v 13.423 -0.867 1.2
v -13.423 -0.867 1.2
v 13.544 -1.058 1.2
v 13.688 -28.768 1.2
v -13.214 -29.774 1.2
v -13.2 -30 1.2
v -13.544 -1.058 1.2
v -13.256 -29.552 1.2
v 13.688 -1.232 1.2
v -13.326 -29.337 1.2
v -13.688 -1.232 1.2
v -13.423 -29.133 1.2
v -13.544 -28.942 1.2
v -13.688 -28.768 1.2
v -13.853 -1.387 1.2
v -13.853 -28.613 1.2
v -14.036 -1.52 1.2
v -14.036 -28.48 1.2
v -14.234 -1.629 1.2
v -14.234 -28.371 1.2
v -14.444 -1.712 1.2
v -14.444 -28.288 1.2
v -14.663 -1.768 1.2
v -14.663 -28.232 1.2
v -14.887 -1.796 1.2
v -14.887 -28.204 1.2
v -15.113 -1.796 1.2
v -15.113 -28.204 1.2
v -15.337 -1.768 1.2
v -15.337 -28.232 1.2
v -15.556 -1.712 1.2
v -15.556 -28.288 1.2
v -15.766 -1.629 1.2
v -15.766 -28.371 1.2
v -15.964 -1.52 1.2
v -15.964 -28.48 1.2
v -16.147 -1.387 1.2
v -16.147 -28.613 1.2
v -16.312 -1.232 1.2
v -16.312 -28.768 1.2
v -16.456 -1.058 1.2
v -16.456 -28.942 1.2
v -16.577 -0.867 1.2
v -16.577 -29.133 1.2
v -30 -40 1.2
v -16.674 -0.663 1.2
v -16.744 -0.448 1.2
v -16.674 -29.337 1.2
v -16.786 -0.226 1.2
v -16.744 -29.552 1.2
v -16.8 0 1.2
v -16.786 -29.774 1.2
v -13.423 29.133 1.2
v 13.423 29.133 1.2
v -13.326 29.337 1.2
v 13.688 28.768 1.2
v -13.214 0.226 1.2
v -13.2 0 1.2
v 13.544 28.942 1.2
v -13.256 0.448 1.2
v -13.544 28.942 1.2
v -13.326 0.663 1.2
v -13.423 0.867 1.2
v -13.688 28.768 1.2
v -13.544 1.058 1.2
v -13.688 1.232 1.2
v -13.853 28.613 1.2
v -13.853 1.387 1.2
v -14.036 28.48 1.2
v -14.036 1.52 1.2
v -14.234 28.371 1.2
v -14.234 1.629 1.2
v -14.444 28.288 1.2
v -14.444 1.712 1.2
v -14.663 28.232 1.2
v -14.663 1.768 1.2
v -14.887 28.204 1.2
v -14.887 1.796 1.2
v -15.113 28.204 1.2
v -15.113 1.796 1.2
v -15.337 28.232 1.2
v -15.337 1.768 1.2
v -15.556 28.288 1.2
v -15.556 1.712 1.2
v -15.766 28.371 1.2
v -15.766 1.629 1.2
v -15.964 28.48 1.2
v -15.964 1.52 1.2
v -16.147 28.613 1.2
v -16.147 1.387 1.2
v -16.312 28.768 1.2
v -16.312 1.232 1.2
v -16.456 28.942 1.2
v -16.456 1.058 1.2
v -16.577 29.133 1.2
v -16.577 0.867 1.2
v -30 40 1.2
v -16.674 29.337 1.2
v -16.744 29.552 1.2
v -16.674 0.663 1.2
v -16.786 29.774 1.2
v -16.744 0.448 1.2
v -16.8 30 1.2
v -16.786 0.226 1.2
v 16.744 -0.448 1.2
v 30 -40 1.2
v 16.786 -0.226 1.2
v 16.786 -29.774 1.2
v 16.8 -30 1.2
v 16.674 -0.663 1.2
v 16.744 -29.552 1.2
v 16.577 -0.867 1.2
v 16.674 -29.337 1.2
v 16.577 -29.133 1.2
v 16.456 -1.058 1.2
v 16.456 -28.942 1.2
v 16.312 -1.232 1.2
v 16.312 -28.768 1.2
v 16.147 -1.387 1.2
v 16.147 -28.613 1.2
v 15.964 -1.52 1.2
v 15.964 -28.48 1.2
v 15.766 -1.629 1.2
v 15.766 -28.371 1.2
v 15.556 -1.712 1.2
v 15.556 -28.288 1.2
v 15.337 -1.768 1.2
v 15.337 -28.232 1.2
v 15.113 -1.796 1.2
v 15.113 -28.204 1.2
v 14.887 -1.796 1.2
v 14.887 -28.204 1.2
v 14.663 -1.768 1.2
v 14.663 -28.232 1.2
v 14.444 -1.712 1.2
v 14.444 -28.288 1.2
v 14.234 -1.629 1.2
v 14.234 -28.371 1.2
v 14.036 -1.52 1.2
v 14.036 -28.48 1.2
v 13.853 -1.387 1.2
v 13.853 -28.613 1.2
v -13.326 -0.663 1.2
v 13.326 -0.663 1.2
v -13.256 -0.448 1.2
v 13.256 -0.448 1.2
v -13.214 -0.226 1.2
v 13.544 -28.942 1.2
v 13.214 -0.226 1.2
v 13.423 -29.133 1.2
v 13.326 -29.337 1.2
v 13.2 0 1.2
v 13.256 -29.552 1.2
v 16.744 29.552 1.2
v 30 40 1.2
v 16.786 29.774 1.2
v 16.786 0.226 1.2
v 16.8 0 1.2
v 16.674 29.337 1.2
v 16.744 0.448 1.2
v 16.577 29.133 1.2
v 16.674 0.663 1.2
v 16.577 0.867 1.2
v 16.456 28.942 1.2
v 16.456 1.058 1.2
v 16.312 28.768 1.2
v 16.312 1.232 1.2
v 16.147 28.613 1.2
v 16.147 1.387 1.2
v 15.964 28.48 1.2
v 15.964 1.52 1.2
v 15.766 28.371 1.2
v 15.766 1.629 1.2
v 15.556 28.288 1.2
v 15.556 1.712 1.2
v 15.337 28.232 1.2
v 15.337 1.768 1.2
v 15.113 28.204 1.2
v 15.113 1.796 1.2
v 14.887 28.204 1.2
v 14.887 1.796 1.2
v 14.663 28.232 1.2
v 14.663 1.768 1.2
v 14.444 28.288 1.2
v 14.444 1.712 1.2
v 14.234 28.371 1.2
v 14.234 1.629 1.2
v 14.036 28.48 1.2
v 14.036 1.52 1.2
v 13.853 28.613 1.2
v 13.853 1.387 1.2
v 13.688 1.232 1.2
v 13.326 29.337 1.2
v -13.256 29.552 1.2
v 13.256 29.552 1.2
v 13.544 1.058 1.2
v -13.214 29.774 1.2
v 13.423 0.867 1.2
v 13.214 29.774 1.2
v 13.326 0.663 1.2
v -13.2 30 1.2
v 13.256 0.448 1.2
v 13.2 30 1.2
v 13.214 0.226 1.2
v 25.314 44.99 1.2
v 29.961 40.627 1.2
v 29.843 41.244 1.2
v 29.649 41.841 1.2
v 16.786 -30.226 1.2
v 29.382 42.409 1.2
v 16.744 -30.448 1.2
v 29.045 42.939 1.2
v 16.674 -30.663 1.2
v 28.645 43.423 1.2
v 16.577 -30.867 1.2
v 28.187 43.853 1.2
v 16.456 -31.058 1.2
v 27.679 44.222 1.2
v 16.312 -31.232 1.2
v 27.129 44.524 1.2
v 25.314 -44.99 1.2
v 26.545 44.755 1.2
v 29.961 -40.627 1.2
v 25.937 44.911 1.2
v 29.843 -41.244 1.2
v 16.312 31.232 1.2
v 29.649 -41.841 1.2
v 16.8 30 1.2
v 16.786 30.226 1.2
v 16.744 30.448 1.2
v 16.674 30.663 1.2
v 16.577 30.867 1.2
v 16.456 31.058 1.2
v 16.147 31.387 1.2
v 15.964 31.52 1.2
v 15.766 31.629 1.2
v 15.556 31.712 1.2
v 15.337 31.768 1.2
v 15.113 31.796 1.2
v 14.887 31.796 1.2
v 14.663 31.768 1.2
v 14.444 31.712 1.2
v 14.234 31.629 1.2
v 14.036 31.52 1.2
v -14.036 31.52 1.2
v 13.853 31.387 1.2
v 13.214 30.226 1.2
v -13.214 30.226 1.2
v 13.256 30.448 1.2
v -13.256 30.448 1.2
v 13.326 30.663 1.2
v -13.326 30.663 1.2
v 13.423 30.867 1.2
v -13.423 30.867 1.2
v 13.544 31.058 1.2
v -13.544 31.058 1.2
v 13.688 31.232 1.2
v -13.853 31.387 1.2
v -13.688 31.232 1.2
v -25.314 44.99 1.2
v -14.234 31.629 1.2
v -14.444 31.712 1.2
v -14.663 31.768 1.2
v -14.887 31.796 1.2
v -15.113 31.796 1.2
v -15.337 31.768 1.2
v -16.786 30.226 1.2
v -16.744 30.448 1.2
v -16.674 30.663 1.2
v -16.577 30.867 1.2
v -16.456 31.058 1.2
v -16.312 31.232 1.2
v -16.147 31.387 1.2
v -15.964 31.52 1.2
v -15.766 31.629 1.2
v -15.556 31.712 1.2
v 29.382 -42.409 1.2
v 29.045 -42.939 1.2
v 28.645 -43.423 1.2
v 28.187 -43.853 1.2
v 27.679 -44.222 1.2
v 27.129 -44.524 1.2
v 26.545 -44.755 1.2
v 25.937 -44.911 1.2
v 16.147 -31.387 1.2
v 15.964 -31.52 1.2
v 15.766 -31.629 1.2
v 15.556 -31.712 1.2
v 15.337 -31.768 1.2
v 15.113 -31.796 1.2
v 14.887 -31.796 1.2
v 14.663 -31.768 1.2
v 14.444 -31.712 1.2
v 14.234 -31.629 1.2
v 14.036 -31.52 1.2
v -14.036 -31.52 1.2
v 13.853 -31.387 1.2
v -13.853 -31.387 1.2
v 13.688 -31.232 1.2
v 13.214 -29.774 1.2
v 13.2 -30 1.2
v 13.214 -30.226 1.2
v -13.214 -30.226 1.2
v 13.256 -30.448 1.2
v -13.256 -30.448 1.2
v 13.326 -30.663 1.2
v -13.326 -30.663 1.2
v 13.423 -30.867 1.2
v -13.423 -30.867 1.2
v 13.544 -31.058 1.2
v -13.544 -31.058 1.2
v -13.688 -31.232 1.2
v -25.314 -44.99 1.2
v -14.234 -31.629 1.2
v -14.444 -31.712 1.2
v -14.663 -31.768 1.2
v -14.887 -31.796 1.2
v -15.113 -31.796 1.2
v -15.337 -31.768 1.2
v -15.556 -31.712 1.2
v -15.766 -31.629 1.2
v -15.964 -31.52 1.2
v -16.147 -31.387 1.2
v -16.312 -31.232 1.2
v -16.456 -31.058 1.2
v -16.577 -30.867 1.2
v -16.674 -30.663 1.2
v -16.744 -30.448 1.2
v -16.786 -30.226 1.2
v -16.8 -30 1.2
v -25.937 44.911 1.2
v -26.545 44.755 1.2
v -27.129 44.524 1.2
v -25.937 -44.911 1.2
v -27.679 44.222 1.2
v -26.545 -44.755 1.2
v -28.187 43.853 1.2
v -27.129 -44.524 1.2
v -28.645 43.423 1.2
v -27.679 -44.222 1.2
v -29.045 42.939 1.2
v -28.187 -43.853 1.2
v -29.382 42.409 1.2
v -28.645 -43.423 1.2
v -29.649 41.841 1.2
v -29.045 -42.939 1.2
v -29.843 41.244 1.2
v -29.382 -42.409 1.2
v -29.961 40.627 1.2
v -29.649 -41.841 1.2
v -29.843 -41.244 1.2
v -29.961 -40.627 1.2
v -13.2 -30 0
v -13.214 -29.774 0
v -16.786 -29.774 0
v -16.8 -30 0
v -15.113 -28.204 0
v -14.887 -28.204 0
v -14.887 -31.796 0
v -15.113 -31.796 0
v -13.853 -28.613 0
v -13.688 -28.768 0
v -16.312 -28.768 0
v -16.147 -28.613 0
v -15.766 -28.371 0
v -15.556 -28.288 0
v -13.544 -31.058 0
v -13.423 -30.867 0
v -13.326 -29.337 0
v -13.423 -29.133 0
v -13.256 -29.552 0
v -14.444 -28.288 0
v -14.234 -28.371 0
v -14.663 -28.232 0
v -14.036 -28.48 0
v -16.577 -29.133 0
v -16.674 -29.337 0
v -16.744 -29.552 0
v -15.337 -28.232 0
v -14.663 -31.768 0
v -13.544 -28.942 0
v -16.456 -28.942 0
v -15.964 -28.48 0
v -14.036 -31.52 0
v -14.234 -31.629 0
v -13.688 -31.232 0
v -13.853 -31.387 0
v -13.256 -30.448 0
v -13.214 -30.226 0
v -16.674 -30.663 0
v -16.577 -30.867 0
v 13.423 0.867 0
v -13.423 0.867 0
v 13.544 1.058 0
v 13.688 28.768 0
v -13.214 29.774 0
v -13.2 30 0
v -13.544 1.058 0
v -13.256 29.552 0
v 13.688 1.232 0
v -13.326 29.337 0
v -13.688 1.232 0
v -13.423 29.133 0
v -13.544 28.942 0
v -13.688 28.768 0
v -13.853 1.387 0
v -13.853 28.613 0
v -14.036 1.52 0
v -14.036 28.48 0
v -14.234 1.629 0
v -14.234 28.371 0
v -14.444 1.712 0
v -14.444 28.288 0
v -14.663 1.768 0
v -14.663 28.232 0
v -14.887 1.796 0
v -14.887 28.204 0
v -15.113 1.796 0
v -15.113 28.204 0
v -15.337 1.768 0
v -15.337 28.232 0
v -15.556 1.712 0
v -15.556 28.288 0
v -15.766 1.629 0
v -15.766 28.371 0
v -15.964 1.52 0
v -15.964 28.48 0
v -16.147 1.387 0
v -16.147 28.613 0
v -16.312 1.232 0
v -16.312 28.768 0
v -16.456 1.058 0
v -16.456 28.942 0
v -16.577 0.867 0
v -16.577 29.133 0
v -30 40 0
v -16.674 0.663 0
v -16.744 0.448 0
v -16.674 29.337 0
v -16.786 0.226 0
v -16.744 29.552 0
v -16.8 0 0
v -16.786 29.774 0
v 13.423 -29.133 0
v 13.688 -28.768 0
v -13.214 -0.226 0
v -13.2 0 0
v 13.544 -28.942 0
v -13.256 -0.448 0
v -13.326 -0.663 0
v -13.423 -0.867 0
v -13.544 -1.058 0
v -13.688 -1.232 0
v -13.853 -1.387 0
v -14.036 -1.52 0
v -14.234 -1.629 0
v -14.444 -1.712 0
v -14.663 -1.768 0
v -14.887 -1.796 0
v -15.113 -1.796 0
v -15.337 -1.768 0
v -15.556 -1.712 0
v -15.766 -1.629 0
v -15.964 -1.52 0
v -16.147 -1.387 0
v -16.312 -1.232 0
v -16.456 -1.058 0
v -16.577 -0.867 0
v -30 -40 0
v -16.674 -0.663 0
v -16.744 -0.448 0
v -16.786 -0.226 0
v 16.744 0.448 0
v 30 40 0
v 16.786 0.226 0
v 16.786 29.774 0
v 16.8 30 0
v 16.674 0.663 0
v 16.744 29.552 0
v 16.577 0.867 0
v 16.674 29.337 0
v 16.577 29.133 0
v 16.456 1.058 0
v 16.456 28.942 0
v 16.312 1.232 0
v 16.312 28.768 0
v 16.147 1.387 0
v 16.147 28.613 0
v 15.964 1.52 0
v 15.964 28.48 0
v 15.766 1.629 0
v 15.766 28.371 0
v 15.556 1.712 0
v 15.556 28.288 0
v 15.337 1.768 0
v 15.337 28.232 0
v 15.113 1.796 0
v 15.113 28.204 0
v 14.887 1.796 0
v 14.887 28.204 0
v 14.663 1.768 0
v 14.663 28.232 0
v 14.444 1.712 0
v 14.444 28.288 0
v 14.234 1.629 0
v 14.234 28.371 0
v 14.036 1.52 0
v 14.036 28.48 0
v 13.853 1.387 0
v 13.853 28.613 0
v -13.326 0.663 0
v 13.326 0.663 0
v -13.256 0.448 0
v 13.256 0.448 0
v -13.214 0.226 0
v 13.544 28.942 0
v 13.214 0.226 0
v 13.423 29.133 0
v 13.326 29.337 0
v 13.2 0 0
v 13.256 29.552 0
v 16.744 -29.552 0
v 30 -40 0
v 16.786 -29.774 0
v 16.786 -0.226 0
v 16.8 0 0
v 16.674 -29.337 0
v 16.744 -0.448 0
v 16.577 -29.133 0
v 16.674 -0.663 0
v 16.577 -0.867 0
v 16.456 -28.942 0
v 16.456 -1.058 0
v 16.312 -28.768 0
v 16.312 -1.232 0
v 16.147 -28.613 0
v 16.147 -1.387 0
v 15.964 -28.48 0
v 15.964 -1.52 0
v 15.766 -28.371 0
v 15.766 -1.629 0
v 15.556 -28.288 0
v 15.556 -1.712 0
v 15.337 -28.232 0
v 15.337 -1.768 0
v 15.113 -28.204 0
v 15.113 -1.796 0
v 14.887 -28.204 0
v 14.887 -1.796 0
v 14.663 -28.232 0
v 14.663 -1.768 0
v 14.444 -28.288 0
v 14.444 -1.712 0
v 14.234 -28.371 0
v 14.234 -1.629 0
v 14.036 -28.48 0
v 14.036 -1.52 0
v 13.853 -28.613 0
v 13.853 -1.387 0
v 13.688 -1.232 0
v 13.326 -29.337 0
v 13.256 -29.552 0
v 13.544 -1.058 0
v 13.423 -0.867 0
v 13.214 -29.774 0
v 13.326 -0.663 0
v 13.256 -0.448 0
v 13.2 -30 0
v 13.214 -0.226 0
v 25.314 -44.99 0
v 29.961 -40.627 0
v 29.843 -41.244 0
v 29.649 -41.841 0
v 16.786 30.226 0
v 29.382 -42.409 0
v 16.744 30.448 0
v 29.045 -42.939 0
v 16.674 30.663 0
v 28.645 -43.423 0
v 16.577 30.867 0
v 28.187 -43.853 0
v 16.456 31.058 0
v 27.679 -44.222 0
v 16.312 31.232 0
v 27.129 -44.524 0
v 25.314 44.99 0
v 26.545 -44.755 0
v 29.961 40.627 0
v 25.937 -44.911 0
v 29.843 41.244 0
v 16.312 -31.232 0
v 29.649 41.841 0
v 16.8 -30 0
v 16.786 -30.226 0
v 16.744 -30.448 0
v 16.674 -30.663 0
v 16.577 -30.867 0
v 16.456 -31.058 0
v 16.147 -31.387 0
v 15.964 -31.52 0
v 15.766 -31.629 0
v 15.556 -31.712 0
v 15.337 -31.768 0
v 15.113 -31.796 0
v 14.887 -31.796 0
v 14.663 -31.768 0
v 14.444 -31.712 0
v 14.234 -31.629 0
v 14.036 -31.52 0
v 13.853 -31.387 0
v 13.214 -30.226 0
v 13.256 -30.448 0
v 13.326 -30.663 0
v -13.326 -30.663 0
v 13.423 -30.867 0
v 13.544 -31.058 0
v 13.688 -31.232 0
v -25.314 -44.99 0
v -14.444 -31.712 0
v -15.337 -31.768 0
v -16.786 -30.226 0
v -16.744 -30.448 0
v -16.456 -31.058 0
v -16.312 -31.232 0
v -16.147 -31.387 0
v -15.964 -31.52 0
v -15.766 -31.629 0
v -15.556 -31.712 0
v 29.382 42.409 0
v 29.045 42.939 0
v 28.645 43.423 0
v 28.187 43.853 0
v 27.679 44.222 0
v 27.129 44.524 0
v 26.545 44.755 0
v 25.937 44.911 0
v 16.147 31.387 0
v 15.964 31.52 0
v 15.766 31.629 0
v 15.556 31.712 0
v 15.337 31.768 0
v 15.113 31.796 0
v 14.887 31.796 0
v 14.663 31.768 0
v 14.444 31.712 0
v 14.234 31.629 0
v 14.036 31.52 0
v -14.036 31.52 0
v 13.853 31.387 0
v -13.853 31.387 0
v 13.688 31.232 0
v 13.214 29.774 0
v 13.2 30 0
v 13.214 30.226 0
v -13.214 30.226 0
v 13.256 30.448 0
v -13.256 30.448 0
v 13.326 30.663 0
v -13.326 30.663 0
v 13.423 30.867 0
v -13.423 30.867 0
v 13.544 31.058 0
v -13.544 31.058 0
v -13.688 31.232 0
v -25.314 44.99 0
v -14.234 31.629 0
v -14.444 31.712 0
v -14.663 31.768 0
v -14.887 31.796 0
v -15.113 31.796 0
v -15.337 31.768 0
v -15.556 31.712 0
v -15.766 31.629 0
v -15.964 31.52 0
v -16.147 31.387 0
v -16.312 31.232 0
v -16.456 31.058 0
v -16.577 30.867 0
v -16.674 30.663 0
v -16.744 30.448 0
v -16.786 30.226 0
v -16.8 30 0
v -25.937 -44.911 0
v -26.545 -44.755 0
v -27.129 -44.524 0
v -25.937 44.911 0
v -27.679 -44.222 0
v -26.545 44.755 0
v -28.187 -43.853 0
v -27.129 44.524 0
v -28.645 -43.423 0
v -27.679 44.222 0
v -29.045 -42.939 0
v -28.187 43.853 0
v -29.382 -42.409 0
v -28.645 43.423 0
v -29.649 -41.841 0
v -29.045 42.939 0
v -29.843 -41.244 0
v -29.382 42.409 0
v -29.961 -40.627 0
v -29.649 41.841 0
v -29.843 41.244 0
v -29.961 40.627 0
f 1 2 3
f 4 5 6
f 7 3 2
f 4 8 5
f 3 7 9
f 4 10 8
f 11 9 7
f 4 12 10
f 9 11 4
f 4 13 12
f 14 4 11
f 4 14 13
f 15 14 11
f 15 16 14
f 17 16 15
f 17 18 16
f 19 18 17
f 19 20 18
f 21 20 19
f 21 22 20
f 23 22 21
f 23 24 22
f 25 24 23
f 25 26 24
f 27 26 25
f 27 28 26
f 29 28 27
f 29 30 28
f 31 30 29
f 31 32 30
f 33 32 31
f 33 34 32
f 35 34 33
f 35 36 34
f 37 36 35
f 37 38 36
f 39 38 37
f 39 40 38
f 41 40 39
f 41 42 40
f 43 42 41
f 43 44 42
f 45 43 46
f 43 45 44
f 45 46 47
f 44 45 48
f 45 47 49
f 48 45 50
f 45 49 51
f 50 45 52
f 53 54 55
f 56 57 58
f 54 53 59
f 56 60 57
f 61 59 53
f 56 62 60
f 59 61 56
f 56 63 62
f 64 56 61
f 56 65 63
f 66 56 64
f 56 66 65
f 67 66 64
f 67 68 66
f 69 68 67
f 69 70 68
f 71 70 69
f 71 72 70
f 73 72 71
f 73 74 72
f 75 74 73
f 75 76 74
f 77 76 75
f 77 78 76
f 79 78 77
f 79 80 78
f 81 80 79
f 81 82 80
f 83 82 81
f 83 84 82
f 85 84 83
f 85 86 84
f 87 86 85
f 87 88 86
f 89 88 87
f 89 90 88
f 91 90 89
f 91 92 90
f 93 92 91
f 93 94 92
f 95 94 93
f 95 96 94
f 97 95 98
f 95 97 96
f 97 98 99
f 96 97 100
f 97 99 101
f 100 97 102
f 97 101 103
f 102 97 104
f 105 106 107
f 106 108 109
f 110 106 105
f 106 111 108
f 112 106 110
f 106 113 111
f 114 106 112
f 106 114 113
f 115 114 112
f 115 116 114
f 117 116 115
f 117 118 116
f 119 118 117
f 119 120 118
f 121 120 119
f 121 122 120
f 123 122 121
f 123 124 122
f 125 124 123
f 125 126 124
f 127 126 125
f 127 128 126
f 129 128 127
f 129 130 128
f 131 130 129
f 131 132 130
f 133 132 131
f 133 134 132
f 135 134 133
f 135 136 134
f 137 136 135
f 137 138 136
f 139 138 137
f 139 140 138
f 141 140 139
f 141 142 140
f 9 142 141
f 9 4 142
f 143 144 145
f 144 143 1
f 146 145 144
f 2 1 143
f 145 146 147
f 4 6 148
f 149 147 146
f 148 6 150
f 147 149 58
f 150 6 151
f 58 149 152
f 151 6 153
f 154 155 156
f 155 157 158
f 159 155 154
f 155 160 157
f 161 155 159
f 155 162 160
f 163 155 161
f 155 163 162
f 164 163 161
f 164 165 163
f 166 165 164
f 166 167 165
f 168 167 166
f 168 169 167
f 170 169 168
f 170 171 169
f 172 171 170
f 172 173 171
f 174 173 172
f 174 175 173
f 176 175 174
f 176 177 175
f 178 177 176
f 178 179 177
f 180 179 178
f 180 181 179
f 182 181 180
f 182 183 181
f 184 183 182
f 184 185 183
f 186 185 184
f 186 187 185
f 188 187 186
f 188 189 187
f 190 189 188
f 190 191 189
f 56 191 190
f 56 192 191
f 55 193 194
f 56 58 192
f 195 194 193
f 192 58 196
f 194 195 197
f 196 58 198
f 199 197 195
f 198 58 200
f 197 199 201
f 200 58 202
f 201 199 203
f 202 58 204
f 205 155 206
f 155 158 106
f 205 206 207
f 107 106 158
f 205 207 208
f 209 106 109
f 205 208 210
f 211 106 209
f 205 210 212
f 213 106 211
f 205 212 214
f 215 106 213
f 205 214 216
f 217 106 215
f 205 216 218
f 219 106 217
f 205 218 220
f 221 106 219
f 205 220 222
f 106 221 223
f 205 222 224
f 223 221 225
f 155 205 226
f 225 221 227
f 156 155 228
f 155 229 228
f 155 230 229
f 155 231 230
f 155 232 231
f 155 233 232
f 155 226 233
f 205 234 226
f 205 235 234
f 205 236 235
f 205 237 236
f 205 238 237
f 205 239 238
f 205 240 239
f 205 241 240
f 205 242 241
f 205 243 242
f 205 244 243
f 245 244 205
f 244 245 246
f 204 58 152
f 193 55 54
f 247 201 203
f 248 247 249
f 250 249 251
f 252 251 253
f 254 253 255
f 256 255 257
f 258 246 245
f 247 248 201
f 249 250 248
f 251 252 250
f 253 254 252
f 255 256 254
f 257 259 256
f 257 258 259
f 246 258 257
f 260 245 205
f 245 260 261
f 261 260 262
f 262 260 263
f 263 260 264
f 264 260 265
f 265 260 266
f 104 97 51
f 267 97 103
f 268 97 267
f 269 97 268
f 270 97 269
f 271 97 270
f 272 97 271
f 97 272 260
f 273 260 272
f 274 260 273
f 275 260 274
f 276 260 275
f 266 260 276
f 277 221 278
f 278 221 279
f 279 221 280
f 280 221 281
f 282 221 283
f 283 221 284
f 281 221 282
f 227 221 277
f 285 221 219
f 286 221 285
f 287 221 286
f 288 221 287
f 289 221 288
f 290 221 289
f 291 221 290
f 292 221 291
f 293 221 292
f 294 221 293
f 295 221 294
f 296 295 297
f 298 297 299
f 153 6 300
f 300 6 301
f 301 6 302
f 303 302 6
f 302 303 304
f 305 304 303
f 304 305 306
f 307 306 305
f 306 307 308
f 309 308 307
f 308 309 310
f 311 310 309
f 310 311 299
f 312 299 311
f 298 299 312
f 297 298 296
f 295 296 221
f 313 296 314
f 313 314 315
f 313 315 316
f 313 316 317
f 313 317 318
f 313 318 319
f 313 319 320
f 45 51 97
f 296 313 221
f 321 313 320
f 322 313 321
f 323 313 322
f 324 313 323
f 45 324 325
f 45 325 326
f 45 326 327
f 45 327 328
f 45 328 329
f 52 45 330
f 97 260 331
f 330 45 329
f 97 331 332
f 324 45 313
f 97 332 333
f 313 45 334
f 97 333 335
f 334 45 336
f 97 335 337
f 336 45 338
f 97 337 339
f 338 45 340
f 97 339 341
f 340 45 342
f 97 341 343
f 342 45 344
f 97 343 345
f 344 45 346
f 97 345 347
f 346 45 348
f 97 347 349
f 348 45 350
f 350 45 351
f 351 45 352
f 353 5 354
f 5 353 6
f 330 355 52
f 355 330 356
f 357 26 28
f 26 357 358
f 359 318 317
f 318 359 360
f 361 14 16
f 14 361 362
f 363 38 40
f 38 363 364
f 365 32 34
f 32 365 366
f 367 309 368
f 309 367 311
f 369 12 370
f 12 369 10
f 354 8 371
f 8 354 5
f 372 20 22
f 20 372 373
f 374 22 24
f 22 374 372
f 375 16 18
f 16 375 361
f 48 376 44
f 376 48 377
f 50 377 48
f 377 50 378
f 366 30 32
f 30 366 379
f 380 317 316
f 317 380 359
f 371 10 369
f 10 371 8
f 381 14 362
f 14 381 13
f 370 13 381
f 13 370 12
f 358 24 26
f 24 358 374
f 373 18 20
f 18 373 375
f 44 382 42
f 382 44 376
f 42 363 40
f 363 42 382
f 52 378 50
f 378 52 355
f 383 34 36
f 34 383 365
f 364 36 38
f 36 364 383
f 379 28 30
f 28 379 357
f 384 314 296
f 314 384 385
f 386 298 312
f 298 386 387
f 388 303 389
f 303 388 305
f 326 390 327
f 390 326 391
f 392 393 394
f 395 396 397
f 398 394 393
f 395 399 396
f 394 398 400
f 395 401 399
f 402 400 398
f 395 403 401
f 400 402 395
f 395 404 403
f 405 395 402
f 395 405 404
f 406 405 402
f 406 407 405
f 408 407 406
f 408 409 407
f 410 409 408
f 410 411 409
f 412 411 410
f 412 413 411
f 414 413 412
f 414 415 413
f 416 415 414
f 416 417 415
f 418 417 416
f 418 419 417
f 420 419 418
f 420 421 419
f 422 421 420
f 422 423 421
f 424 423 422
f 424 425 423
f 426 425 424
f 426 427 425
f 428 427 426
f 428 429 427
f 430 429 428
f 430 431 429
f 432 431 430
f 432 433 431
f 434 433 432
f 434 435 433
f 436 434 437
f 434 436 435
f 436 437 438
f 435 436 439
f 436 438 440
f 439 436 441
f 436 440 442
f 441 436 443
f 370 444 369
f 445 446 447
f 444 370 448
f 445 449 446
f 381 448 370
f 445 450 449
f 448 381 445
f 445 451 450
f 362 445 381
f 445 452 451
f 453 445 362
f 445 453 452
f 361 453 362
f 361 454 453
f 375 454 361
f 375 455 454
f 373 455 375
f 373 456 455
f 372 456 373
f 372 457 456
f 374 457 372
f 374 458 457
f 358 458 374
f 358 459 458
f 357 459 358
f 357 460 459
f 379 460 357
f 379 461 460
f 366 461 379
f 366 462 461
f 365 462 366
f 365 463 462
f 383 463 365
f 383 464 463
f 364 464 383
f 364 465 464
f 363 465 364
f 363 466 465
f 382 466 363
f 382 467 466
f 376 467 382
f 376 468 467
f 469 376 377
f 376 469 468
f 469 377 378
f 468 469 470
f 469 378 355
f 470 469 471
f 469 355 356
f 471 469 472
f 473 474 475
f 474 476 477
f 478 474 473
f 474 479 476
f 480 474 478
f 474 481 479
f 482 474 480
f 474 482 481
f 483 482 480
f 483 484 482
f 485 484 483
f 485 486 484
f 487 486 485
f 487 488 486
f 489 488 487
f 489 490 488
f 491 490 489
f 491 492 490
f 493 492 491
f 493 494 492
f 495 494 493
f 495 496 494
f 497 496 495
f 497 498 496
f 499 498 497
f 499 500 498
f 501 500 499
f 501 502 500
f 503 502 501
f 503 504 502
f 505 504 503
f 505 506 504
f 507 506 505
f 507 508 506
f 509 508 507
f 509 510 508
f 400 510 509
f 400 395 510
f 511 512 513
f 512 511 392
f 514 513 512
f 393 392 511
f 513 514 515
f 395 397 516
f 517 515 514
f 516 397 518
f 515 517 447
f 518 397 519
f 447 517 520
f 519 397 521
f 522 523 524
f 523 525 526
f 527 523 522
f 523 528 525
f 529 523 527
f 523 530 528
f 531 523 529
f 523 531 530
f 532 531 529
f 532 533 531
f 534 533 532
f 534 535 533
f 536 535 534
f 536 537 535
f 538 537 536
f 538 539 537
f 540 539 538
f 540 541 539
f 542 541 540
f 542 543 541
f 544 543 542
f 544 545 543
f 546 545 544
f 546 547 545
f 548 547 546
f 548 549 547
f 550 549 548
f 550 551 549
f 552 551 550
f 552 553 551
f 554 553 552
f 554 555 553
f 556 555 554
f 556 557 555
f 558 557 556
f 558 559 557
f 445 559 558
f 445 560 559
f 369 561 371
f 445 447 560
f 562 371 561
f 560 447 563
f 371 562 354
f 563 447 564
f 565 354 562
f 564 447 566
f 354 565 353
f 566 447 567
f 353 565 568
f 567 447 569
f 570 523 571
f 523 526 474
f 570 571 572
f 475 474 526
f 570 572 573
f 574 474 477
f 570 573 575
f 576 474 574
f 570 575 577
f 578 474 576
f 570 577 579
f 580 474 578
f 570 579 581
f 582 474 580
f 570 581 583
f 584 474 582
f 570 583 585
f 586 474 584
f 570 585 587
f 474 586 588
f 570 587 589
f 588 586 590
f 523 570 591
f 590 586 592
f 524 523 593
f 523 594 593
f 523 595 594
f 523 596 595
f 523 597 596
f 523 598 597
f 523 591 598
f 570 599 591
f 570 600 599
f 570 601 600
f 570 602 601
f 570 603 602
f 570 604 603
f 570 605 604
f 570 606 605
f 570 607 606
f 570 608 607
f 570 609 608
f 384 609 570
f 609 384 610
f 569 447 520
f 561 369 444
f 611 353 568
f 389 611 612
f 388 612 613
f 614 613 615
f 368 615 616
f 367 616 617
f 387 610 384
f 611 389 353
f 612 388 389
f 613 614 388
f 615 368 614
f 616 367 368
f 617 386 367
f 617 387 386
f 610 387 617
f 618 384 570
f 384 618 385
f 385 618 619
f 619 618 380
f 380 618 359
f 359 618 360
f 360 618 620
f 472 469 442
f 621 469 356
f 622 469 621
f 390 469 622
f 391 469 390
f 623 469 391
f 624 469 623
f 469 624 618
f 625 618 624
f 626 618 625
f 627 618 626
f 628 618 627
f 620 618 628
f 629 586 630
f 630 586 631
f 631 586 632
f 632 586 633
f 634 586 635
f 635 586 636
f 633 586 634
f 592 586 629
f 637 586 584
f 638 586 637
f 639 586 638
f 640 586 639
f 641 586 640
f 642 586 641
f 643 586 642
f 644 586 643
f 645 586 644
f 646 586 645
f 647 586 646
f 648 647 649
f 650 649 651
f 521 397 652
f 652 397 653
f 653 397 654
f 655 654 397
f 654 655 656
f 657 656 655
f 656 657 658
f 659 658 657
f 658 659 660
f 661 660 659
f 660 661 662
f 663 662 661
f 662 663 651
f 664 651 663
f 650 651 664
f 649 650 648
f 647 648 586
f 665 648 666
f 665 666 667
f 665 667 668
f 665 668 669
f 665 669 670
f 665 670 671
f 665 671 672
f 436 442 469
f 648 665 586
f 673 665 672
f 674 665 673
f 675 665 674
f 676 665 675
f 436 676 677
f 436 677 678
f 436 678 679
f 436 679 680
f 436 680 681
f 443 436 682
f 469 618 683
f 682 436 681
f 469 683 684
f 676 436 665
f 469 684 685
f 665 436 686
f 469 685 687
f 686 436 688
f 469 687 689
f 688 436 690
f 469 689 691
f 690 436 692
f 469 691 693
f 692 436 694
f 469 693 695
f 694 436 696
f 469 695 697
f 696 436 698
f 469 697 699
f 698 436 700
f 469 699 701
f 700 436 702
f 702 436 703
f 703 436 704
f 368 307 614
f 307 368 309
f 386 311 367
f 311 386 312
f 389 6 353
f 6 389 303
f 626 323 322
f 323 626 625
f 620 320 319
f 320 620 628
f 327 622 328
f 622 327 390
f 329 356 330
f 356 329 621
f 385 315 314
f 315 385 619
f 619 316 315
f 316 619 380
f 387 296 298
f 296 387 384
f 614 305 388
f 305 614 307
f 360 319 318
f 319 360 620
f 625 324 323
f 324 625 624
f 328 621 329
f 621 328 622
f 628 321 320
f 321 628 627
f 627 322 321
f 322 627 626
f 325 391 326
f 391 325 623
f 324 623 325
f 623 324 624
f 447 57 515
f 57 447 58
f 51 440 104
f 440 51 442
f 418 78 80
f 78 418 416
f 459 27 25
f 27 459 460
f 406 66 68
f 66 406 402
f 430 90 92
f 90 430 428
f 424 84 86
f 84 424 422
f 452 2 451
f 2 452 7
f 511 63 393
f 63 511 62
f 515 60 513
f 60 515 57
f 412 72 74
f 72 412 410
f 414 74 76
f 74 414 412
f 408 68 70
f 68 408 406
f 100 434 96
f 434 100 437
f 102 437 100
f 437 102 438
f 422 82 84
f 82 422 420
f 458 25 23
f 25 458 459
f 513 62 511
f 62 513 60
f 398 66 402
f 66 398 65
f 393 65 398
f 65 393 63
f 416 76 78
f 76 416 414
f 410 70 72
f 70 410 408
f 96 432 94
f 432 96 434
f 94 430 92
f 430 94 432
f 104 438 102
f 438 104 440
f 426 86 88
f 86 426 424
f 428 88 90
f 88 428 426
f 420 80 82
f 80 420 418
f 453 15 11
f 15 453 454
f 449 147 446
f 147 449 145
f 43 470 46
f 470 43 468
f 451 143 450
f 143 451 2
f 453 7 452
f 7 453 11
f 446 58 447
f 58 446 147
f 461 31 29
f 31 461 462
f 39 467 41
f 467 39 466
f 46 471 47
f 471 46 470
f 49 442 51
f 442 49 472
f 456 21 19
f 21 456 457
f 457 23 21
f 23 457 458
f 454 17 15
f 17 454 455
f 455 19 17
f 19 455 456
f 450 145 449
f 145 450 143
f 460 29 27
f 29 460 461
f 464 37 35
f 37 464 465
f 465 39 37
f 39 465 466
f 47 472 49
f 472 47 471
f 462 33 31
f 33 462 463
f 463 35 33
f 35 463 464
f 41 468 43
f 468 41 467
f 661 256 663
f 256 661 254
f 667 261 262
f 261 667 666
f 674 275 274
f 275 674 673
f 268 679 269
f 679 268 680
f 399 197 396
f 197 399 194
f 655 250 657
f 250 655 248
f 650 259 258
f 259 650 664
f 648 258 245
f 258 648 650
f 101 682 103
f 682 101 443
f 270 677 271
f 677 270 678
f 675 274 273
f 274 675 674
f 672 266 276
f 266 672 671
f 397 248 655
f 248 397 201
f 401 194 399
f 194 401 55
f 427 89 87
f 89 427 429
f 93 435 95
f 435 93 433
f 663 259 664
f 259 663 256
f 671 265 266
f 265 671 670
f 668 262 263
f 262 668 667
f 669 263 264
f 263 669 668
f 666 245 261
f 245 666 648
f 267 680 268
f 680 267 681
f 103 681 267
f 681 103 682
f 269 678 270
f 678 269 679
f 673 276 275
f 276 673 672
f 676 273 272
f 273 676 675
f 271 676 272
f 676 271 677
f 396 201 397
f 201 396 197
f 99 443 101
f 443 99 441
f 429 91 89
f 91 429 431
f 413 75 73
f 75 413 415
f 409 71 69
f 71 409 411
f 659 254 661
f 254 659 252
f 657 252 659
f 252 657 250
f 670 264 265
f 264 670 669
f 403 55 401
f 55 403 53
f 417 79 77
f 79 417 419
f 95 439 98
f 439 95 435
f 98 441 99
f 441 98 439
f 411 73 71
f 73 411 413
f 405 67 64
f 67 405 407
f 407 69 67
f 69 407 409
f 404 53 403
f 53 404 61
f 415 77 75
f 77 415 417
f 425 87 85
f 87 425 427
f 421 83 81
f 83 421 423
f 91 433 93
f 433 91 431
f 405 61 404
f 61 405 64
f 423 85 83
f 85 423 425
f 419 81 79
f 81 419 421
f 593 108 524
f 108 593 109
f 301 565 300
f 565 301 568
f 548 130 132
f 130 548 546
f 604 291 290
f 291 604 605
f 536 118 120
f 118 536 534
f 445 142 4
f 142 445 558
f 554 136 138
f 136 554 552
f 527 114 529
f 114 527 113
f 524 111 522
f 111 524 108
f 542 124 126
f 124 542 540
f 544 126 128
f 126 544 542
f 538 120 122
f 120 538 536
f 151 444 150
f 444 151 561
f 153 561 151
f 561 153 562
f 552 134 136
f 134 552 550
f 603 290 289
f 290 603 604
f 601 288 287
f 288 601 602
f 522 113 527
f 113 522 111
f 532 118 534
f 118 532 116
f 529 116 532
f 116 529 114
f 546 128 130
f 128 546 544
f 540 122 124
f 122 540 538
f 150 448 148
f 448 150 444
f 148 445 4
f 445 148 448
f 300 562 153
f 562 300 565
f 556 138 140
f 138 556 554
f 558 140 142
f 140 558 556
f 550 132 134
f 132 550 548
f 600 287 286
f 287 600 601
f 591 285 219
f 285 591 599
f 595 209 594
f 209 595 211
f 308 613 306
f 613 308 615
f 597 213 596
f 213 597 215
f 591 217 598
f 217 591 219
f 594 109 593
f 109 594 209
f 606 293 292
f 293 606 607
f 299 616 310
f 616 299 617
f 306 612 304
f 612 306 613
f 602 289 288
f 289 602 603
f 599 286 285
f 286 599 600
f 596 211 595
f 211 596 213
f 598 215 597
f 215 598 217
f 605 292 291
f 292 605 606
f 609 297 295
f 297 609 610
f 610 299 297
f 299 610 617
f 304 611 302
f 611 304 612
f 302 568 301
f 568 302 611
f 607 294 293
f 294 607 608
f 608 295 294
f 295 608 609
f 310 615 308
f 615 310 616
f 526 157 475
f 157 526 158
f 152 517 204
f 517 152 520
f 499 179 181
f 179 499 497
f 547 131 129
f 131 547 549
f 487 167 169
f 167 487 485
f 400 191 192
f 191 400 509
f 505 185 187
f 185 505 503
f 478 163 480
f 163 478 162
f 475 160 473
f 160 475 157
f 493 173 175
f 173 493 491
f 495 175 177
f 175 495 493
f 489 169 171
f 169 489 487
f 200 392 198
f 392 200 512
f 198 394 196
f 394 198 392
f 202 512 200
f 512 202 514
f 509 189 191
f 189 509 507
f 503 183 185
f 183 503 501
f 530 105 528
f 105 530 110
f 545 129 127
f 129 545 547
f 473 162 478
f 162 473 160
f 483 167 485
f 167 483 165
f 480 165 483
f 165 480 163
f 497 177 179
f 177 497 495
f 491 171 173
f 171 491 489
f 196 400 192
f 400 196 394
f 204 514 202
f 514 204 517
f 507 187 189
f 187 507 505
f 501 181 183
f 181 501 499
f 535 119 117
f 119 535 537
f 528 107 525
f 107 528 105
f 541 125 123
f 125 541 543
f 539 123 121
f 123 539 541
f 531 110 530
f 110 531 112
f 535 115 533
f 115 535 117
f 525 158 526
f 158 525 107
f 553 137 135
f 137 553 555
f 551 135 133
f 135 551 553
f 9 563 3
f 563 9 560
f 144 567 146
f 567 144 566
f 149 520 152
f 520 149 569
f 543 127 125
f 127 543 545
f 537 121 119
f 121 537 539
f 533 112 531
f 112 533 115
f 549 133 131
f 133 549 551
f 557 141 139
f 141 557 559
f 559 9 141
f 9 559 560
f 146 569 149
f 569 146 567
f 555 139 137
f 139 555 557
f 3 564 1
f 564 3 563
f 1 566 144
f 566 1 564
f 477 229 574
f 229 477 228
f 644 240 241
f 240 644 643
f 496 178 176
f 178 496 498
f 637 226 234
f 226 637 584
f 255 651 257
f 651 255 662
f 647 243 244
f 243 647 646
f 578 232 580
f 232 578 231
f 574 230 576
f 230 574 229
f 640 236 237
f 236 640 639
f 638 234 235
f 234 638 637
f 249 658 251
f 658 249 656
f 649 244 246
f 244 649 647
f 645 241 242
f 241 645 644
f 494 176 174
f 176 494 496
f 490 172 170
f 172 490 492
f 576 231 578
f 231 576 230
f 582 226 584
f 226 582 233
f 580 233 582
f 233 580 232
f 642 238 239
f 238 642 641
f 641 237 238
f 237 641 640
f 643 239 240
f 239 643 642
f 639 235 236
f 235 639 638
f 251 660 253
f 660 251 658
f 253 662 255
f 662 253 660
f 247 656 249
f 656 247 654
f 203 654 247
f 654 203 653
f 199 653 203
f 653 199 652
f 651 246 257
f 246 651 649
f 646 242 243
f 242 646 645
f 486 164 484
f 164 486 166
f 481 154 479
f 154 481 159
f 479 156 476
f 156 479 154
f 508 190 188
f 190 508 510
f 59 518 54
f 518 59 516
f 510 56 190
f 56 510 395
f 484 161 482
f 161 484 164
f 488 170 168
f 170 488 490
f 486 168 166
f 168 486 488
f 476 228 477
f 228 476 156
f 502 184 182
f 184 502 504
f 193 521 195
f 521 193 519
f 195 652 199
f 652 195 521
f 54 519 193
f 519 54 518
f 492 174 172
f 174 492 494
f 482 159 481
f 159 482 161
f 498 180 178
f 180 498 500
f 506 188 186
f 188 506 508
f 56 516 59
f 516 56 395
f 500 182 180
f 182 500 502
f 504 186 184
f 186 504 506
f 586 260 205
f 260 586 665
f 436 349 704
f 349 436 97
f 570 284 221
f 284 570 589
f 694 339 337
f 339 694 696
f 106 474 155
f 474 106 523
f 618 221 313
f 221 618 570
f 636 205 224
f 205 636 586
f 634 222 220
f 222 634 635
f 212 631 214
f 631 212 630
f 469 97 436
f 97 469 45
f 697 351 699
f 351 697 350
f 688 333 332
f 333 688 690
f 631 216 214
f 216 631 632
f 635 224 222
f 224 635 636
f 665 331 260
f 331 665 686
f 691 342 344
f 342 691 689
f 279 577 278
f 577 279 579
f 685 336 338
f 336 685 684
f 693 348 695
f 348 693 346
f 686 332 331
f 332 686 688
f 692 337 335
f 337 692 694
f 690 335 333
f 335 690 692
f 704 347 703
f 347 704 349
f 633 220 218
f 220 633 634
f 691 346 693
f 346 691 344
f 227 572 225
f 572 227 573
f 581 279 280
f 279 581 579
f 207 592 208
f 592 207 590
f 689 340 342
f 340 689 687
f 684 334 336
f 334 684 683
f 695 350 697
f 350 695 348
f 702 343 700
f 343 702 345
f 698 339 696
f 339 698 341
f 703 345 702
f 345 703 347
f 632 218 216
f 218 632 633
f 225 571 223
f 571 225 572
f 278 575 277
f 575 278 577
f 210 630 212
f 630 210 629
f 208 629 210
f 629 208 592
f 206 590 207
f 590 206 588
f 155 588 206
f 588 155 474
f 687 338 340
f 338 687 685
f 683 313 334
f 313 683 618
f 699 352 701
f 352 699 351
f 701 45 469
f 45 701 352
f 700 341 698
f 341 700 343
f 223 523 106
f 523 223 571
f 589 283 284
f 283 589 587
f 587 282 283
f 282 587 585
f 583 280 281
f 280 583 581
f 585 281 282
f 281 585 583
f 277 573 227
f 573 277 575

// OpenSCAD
$fn = 50;


difference() {
	union() {
		hull() {
			translate(v = [-25.0000000000, 40.0000000000, 0]) {
				cylinder(h = 21, r = 5);
			}
			translate(v = [25.0000000000, 40.0000000000, 0]) {
				cylinder(h = 21, r = 5);
			}
			translate(v = [-25.0000000000, -40.0000000000, 0]) {
				cylinder(h = 21, r = 5);
			}
			translate(v = [25.0000000000, -40.0000000000, 0]) {
				cylinder(h = 21, r = 5);
			}
		}
	}
	union() {
		translate(v = [0, 0, 1.2000000000]) {
			hull() {
				translate(v = [-25.0000000000, 40.0000000000, 0]) {
					cylinder(h = 19.8000000000, r = 3.8000000000);
				}
				translate(v = [25.0000000000, 40.0000000000, 0]) {
					cylinder(h = 19.8000000000, r = 3.8000000000);
				}
				translate(v = [-25.0000000000, -40.0000000000, 0]) {
					cylinder(h = 19.8000000000, r = 3.8000000000);
				}
				translate(v = [25.0000000000, -40.0000000000, 0]) {
					cylinder(h = 19.8000000000, r = 3.8000000000);
				}
			}
		}
		#translate(v = [-15.0000000000, -30.0000000000, 0]) {
			cylinder(h = 1.2000000000, r = 1.8000000000);
		}
		#translate(v = [-15.0000000000, 0.0000000000, 0]) {
			cylinder(h = 1.2000000000, r = 1.8000000000);
		}
		#translate(v = [-15.0000000000, 30.0000000000, 0]) {
			cylinder(h = 1.2000000000, r = 1.8000000000);
		}
		#translate(v = [15.0000000000, -30.0000000000, 0]) {
			cylinder(h = 1.2000000000, r = 1.8000000000);
		}
		#translate(v = [15.0000000000, 0.0000000000, 0]) {
			cylinder(h = 1.2000000000, r = 1.8000000000);
		}
		#translate(v = [15.0000000000, 30.0000000000, 0]) {
			cylinder(h = 1.2000000000, r = 1.8000000000);
		}
		translate(v = [-250.0000000000, -250.0000000000, 1.2000000000]) {
			cube(size = [500, 500, 500]);
		}
		translate(v = [-250.0000000000, -250.0000000000, 1.2000000000]) {
			cube(size = [500, 500, 500]);
		}
		translate(v = [-250.0000000000, -250.0000000000, 1.2000000000]) {
			cube(size = [500, 500, 500]);
		}
	}
}
